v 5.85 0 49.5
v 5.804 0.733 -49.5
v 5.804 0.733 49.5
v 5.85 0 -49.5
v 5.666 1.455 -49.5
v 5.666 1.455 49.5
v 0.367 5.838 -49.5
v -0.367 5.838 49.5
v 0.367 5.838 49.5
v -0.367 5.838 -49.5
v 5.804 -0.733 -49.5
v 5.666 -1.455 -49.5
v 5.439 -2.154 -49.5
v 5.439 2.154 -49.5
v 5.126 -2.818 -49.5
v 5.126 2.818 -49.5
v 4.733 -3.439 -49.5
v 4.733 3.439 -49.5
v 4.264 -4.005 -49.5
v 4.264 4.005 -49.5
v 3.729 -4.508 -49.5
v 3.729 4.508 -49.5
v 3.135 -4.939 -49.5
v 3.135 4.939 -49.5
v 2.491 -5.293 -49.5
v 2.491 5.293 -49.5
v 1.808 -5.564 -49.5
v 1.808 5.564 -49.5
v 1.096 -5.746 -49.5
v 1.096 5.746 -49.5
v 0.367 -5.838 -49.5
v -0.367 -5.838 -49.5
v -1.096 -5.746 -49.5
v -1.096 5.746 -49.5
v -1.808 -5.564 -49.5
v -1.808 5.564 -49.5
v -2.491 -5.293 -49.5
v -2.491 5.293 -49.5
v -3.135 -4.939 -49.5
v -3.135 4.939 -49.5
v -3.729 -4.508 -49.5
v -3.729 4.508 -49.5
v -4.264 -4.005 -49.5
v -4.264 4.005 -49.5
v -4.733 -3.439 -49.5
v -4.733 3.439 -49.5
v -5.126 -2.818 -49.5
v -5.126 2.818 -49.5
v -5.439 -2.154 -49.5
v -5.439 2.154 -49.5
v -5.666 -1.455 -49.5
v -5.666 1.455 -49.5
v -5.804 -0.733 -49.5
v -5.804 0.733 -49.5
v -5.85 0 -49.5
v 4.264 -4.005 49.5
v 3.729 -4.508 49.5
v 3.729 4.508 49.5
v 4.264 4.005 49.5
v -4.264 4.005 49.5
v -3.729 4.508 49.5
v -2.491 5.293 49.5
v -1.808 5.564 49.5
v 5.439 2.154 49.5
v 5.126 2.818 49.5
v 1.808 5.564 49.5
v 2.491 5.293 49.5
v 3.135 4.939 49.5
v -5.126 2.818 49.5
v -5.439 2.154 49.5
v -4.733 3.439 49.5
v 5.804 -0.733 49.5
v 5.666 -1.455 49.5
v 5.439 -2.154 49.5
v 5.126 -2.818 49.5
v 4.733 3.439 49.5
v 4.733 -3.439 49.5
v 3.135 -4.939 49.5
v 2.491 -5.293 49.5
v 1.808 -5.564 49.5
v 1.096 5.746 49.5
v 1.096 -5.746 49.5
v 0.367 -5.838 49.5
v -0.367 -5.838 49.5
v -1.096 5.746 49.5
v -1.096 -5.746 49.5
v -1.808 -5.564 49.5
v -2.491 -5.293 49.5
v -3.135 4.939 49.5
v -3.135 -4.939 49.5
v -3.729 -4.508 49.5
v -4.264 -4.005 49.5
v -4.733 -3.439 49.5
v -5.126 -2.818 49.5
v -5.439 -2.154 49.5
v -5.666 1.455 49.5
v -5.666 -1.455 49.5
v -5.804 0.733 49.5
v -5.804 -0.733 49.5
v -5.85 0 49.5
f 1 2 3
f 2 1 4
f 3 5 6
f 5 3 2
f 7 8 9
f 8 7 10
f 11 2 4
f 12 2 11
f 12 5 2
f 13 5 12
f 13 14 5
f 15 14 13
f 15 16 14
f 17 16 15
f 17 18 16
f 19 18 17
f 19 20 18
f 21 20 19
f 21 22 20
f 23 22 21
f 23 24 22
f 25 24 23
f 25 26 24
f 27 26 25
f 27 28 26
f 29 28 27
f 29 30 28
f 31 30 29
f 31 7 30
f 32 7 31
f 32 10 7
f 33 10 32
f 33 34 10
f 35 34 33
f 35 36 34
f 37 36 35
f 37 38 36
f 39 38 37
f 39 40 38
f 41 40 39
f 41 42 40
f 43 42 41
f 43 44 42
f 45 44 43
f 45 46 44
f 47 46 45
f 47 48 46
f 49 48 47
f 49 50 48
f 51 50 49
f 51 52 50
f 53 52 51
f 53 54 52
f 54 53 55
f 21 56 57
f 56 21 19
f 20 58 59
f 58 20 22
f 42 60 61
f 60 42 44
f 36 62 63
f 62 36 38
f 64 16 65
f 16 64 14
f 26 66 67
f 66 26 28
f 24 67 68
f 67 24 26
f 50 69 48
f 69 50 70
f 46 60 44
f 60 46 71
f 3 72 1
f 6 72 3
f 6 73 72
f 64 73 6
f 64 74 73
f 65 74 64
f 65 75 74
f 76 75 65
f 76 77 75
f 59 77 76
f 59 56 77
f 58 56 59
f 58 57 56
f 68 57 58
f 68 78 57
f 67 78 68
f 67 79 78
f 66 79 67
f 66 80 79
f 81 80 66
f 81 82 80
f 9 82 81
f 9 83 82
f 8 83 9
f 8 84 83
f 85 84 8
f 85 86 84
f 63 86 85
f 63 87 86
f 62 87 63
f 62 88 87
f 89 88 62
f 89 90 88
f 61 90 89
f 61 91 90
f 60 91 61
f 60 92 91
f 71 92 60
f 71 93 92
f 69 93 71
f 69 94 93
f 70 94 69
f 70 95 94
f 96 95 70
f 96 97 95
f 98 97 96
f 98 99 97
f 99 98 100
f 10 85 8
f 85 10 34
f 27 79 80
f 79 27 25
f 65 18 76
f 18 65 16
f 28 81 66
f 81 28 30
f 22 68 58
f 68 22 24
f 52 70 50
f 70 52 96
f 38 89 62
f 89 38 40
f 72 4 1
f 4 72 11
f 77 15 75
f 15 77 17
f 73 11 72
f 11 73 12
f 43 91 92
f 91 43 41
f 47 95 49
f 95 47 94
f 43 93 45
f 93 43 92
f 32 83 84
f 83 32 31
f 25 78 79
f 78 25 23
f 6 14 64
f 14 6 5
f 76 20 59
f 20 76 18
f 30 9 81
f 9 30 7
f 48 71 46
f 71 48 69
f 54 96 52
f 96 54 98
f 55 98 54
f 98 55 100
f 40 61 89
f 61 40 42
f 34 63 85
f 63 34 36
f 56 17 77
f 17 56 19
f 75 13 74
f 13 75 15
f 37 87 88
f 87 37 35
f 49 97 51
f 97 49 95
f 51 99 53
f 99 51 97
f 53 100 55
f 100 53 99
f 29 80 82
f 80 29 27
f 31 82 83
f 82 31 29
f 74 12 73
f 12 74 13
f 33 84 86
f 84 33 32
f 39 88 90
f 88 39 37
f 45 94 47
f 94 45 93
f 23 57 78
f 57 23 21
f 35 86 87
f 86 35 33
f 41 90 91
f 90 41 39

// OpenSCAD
$fn = 50;


difference() {
	union() {
		translate(v = [0, 0, -49.5000000000]) {
			cylinder(h = 99, r = 5.8500000000);
		}
	}
	union() {
		translate(v = [0, 0, -100.0000000000]) {
			cylinder(h = 200, r = 0);
		}
	}
}
